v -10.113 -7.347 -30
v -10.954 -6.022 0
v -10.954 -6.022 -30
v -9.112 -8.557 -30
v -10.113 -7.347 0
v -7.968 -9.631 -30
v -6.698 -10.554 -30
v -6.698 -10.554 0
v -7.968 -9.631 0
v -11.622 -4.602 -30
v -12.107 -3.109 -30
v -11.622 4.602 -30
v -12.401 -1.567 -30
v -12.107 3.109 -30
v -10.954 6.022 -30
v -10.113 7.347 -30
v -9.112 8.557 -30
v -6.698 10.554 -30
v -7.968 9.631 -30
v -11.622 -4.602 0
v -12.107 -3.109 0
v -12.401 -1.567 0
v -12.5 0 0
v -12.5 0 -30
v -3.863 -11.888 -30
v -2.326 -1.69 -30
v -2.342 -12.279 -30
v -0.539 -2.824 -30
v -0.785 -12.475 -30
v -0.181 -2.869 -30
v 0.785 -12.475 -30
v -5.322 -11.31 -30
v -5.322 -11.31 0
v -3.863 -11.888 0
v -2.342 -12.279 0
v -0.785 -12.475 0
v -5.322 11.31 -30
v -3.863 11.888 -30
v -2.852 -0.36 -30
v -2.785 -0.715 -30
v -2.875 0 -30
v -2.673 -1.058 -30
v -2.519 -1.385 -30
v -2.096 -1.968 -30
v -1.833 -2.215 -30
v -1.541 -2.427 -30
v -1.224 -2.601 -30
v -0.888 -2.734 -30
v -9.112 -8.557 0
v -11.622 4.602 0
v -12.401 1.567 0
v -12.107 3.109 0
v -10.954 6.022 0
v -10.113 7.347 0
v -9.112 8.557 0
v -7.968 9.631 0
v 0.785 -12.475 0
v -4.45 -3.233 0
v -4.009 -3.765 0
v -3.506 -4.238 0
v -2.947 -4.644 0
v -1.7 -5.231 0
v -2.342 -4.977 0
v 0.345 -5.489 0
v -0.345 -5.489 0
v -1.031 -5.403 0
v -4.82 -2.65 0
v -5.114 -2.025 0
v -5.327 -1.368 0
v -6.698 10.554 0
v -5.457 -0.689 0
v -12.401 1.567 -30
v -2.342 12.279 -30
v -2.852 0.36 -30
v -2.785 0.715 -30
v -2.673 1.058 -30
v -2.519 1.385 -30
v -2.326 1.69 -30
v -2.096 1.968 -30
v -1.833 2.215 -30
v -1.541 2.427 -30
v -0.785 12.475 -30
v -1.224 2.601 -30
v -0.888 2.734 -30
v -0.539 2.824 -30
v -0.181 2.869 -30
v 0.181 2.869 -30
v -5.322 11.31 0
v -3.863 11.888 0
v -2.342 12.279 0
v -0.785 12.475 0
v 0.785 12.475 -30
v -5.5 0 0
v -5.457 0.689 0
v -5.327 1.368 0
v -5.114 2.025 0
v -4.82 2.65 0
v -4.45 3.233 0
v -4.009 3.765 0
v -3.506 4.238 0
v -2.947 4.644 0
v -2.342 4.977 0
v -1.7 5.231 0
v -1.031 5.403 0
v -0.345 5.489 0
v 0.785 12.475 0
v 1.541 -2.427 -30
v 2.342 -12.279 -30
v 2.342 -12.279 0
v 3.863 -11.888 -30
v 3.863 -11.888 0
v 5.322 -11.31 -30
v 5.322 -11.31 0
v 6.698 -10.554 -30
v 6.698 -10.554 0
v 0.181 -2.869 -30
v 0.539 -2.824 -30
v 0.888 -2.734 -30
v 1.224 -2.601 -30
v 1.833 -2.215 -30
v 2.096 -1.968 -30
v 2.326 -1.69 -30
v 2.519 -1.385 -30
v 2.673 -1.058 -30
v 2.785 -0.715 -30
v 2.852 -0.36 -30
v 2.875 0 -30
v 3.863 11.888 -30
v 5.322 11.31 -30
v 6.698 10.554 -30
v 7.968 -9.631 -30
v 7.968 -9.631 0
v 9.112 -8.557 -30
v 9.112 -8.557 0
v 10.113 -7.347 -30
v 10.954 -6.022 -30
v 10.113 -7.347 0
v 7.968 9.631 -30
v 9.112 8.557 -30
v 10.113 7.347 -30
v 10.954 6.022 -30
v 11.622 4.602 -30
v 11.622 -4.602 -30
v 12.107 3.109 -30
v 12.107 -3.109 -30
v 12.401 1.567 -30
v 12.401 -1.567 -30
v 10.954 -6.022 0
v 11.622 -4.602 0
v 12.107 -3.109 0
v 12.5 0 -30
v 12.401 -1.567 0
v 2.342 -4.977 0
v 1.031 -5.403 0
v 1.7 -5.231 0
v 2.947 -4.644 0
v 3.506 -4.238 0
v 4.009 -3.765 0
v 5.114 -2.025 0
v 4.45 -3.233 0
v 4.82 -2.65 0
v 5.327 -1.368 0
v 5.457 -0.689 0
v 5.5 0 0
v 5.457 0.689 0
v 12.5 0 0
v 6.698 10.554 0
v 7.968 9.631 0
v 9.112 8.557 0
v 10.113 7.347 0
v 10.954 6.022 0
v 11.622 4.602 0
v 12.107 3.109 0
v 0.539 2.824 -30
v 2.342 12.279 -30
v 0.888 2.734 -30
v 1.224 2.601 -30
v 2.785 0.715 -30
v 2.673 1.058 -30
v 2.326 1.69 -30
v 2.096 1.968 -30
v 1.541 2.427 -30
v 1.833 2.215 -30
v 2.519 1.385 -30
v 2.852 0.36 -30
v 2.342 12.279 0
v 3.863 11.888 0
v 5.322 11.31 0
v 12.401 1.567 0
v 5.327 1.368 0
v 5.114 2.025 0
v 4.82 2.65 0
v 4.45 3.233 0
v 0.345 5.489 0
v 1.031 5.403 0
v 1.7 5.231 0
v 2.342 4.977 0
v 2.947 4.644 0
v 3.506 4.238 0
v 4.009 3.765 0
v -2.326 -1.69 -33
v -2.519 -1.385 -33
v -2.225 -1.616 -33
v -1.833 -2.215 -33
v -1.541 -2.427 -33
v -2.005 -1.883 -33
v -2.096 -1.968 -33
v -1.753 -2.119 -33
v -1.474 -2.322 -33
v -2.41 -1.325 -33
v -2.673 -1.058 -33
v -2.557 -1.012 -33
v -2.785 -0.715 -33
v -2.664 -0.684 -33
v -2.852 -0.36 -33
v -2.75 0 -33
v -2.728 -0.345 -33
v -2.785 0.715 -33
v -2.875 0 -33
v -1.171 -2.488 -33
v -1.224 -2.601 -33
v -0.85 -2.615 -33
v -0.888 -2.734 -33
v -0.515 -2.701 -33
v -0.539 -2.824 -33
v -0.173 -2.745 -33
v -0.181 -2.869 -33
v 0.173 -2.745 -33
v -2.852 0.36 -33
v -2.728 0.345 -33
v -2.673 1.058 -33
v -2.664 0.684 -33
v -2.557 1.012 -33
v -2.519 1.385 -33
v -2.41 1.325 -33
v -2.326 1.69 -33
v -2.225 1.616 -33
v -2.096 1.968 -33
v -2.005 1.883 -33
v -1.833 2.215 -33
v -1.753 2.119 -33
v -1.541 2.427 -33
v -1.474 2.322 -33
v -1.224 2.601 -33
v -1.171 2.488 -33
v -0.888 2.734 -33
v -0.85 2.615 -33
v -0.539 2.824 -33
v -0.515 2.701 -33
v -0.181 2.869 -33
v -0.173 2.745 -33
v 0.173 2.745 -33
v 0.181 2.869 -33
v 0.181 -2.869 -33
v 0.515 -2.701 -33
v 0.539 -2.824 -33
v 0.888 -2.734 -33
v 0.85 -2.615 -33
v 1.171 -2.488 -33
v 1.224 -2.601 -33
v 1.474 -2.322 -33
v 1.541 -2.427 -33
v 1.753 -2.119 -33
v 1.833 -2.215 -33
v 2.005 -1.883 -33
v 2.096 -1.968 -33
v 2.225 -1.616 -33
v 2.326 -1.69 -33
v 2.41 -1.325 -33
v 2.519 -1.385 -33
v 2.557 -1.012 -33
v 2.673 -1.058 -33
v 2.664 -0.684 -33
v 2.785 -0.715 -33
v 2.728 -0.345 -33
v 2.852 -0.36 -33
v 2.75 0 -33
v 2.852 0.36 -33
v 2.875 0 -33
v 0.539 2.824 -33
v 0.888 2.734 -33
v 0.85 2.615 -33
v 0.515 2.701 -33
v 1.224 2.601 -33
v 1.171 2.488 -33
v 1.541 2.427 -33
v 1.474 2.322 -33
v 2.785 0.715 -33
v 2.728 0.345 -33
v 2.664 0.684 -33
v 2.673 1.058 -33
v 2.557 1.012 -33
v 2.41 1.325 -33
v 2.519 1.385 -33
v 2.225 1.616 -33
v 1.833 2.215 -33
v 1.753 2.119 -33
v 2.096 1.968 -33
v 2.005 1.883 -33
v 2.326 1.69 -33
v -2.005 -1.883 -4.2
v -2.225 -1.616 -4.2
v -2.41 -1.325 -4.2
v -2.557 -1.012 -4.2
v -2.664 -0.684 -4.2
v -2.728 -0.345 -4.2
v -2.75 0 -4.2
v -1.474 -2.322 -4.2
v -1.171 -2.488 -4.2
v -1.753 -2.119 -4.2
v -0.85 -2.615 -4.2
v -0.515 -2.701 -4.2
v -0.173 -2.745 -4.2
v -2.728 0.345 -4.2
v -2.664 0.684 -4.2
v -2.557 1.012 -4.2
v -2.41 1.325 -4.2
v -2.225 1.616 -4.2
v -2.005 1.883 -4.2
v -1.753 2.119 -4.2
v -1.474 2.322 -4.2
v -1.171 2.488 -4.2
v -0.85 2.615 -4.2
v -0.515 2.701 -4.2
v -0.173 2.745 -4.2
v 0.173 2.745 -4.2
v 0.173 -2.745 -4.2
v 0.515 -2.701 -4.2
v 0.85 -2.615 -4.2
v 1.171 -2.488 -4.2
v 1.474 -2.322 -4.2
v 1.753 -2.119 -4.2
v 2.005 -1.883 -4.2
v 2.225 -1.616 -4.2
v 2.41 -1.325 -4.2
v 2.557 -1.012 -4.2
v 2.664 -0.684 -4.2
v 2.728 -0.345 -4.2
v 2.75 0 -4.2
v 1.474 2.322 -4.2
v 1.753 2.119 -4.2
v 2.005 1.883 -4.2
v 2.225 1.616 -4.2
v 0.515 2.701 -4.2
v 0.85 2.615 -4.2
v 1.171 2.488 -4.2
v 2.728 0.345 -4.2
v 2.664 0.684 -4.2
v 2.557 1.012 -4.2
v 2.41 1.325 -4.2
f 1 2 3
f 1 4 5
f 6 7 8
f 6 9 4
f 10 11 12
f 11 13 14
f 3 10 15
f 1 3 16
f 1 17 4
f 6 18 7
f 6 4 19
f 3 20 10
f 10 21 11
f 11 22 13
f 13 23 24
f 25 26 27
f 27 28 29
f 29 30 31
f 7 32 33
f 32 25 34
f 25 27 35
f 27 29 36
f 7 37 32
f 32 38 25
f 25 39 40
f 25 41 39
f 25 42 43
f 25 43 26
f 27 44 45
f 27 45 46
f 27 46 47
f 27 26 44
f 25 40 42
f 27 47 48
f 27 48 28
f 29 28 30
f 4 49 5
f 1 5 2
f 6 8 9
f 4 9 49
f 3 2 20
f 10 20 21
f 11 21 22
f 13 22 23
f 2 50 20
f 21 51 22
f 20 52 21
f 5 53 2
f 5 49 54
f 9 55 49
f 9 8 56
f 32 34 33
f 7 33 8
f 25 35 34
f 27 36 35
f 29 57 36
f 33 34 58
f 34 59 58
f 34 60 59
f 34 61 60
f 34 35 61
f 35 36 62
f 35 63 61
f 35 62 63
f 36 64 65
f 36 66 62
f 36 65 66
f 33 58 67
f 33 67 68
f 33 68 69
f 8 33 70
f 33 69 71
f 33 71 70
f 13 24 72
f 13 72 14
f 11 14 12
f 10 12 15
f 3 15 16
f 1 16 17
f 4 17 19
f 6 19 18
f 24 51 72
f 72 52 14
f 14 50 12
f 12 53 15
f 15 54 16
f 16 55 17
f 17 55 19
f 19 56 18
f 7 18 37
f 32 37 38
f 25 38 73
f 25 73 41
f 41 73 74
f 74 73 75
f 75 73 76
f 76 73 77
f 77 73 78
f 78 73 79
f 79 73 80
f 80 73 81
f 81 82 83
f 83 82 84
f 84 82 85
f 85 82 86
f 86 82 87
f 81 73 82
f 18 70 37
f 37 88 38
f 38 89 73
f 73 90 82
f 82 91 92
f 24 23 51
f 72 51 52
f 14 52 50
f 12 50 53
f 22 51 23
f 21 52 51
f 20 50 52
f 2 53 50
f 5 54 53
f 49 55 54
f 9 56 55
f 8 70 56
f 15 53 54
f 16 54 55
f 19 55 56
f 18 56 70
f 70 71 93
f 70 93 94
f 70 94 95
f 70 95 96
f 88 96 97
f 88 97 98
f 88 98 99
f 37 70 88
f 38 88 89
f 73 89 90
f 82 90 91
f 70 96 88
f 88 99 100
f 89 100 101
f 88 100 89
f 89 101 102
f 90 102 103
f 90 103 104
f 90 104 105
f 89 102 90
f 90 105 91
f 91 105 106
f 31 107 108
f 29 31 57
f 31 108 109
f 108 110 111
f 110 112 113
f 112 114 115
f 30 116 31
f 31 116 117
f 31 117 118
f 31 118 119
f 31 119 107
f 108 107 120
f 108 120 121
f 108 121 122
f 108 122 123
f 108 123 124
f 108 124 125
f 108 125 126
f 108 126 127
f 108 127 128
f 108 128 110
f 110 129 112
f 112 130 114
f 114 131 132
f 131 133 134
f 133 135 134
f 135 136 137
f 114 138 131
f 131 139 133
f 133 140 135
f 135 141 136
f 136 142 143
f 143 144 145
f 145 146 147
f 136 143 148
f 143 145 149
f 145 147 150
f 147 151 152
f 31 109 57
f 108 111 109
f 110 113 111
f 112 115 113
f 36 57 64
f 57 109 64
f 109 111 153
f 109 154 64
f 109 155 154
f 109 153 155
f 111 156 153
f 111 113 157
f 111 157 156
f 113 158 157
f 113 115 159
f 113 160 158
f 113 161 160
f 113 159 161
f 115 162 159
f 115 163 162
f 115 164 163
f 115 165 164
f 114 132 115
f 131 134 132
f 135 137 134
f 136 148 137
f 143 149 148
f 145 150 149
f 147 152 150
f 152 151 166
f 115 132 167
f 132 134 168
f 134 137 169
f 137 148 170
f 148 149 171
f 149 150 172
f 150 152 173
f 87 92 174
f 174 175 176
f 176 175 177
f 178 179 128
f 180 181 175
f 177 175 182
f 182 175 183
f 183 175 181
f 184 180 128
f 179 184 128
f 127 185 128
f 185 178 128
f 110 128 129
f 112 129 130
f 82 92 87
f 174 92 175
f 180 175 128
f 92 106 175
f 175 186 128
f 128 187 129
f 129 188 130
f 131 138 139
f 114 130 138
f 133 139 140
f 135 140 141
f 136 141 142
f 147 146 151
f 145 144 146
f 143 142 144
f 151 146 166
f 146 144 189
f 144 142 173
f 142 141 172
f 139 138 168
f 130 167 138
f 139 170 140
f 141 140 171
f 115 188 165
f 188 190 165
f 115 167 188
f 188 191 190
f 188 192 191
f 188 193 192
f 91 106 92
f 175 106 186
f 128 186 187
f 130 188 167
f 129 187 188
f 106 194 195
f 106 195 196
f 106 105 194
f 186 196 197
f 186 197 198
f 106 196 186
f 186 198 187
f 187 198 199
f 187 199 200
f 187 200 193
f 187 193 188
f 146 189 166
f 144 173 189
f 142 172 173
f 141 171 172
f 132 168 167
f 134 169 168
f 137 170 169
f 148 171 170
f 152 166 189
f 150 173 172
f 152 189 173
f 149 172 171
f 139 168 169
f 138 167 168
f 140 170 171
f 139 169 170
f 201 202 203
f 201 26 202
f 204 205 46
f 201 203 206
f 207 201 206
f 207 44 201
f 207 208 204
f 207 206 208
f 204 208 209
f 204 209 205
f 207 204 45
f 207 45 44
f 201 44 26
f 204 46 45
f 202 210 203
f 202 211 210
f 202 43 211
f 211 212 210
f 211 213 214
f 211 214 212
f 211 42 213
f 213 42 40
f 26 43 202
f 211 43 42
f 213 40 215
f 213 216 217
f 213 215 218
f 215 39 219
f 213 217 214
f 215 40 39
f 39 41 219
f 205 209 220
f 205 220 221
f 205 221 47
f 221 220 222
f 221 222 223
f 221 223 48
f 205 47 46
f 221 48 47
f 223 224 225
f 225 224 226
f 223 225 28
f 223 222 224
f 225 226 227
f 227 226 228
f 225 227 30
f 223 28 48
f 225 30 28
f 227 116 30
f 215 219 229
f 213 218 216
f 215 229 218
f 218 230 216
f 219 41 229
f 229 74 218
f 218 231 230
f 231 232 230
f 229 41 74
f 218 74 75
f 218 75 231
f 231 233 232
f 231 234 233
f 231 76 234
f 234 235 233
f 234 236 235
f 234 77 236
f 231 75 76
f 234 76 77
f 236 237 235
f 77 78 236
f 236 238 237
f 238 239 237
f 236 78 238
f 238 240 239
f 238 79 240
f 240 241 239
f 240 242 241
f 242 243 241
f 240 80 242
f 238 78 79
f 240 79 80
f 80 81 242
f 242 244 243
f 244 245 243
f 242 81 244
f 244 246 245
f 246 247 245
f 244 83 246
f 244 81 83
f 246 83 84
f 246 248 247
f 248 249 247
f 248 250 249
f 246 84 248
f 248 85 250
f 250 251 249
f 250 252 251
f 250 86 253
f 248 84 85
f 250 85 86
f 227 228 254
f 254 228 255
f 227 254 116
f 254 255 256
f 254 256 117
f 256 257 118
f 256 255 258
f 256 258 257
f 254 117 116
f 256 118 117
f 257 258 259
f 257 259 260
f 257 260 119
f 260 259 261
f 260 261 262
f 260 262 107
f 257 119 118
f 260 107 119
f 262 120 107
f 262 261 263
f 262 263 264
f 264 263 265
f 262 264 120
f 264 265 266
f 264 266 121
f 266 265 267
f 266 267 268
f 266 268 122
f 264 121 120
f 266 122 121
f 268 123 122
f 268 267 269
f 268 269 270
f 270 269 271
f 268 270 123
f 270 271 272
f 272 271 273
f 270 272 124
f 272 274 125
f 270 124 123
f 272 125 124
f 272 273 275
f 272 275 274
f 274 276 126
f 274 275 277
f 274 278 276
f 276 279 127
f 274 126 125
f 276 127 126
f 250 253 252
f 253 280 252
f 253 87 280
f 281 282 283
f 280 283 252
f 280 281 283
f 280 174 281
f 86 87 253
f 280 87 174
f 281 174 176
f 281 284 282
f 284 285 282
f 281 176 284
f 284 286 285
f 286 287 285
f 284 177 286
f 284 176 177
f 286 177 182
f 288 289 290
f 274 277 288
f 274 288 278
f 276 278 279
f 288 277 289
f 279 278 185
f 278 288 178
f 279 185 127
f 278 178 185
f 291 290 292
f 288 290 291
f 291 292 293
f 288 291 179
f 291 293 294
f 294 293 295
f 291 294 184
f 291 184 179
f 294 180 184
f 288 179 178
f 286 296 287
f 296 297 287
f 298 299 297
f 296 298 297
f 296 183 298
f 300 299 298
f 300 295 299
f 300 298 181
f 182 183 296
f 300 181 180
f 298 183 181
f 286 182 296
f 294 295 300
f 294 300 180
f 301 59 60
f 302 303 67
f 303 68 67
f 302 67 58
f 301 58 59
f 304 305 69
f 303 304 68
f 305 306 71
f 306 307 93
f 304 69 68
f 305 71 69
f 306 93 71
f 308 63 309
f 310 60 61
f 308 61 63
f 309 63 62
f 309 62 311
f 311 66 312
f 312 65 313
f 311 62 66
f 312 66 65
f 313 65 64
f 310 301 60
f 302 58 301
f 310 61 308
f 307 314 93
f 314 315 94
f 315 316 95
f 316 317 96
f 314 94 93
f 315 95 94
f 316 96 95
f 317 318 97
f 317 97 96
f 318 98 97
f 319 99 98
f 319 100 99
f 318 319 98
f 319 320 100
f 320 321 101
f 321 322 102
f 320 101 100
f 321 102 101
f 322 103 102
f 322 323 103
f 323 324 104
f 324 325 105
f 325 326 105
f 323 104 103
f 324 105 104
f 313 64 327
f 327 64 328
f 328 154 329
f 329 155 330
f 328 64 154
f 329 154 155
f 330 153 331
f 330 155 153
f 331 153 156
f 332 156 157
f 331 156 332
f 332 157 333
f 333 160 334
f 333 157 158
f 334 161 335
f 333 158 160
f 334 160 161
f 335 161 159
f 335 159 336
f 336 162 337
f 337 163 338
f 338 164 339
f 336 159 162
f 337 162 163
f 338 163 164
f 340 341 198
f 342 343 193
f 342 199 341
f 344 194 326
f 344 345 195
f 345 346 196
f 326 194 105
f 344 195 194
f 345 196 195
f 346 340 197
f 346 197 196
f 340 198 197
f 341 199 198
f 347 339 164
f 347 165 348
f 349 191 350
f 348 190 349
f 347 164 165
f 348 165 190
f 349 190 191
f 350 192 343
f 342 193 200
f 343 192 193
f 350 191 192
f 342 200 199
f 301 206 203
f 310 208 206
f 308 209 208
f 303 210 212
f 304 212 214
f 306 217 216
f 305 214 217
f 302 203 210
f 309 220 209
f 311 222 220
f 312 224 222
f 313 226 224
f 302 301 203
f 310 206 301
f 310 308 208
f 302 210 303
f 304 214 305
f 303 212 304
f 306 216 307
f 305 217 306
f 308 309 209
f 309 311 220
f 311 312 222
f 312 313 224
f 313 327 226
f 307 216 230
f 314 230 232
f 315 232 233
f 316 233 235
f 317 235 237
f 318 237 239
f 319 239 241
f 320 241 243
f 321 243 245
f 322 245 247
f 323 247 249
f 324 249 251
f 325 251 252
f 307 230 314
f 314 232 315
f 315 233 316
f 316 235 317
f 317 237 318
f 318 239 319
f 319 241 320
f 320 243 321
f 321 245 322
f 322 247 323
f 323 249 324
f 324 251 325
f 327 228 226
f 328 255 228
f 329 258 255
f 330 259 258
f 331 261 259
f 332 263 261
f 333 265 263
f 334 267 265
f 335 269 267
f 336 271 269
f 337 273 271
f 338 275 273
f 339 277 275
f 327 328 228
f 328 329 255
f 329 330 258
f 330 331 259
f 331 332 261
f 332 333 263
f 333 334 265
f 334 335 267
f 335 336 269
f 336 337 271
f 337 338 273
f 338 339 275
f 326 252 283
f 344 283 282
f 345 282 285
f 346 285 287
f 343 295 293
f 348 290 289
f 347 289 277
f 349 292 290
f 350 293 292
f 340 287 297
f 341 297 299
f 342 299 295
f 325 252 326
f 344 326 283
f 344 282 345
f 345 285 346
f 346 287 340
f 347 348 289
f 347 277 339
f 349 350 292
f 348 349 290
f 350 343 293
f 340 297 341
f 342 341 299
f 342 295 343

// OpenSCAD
$fn = 50;

difference() {
	union() {
		translate(v = [0, 0, -30.0]) {
			cylinder(h = 30, r = 12.5);
		}
		#translate(v = [0, 0, -33.0]) {
			cylinder(h = 33, r = 2.875);
		}
	}
	union() {
		translate(v = [0, 0, 0]) {
			rotate(a = [0, 0, 0]) {
				difference() {
					union() {
						translate(v = [0, 0, -33.0]) {
							cylinder(h = 33, r = 2.25);
						}
						translate(v = [0, 0, -4.2]) {
							cylinder(h = 4.2, r1 = 2.75, r2 = 5.5);
						}
						translate(v = [0, 0, -33.0]) {
							cylinder(h = 33, r = 2.75);
						}
						translate(v = [0, 0, -33.0]) {
							cylinder(h = 33, r = 2.25);
						}
					}
					union();
				}
			}
		}
	}
}
